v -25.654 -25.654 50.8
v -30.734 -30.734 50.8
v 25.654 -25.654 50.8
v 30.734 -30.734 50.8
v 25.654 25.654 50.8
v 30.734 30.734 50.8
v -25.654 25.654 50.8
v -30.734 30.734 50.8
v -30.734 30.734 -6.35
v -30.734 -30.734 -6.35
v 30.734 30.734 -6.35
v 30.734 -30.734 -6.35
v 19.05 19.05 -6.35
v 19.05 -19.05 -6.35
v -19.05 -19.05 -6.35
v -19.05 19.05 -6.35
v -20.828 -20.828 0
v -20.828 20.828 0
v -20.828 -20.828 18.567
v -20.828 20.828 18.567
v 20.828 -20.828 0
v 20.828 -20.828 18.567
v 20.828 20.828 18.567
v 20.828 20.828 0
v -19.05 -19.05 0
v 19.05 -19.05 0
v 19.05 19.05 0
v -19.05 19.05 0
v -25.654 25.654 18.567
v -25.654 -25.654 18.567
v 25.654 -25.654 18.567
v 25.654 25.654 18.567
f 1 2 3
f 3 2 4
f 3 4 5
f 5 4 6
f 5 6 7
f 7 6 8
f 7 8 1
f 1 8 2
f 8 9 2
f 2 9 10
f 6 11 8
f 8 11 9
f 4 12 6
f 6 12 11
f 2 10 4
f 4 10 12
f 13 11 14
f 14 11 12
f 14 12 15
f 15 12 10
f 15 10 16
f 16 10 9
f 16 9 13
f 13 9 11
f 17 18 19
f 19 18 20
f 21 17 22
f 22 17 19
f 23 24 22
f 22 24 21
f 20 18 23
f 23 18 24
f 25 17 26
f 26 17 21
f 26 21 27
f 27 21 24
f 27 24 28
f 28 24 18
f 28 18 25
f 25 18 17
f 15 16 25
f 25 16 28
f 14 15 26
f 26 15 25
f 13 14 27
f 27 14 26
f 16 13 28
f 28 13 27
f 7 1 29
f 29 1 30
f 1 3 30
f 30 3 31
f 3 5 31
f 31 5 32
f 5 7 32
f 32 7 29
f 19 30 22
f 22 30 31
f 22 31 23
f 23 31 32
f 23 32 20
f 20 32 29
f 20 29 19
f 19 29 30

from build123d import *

# Parameters (mm, degrees)
BOSS_EXTRUDE1_DEPTH      = 50.8
BOSS_EXTRUDE1_DEPTH_BACK = 6.35
SKETCH1_W                = 61.468
SKETCH1_H                = 61.468
SKETCH1_3_W              = 41.656
SKETCH1_3_H              = 41.656
CUT_EXTRUDE1_DEPTH       = 67.856544272
SKETCH5_W                = 38.1
SKETCH5_H                = 38.1
CUT_EXTRUDE3_DEPTH       = 72.800278635
SKETCH7_W                = 51.308
SKETCH7_H                = 51.308
CUT_EXTRUDE4_DEPTH       = 55.111902709


with BuildPart() as part:
    # Sketch1 → Boss-Extrude1 (new, two sides: drawn at the far end of the back side and taken through both)
    with BuildSketch(Plane.XY.offset(-BOSS_EXTRUDE1_DEPTH_BACK)):
        Rectangle(SKETCH1_W, SKETCH1_H)
    extrude(amount=BOSS_EXTRUDE1_DEPTH + BOSS_EXTRUDE1_DEPTH_BACK)

    # Sketch1<3> → Cut-Extrude1 (cut, through all)
    with BuildSketch(Plane.XY):
        Rectangle(SKETCH1_3_W, SKETCH1_3_H)
    extrude(amount=CUT_EXTRUDE1_DEPTH, mode=Mode.SUBTRACT)

    # Sketch5 → Cut-Extrude3 (cut, through all)
    with BuildSketch(Plane(origin=(0, 0, -6.35), x_dir=(-1, 0, 0), z_dir=(0, 0, -1))):
        Rectangle(SKETCH5_W, SKETCH5_H)
    extrude(amount=-CUT_EXTRUDE3_DEPTH, mode=Mode.SUBTRACT)

    # Sketch7 → Cut-Extrude4 (cut, through all)
    with BuildSketch(Plane(origin=(0, 0, 18.5674), x_dir=(-1, 0, 0), z_dir=(0, 0, -1))):
        Rectangle(SKETCH7_W, SKETCH7_H)
    extrude(amount=-CUT_EXTRUDE4_DEPTH, mode=Mode.SUBTRACT)


solid = part.part
